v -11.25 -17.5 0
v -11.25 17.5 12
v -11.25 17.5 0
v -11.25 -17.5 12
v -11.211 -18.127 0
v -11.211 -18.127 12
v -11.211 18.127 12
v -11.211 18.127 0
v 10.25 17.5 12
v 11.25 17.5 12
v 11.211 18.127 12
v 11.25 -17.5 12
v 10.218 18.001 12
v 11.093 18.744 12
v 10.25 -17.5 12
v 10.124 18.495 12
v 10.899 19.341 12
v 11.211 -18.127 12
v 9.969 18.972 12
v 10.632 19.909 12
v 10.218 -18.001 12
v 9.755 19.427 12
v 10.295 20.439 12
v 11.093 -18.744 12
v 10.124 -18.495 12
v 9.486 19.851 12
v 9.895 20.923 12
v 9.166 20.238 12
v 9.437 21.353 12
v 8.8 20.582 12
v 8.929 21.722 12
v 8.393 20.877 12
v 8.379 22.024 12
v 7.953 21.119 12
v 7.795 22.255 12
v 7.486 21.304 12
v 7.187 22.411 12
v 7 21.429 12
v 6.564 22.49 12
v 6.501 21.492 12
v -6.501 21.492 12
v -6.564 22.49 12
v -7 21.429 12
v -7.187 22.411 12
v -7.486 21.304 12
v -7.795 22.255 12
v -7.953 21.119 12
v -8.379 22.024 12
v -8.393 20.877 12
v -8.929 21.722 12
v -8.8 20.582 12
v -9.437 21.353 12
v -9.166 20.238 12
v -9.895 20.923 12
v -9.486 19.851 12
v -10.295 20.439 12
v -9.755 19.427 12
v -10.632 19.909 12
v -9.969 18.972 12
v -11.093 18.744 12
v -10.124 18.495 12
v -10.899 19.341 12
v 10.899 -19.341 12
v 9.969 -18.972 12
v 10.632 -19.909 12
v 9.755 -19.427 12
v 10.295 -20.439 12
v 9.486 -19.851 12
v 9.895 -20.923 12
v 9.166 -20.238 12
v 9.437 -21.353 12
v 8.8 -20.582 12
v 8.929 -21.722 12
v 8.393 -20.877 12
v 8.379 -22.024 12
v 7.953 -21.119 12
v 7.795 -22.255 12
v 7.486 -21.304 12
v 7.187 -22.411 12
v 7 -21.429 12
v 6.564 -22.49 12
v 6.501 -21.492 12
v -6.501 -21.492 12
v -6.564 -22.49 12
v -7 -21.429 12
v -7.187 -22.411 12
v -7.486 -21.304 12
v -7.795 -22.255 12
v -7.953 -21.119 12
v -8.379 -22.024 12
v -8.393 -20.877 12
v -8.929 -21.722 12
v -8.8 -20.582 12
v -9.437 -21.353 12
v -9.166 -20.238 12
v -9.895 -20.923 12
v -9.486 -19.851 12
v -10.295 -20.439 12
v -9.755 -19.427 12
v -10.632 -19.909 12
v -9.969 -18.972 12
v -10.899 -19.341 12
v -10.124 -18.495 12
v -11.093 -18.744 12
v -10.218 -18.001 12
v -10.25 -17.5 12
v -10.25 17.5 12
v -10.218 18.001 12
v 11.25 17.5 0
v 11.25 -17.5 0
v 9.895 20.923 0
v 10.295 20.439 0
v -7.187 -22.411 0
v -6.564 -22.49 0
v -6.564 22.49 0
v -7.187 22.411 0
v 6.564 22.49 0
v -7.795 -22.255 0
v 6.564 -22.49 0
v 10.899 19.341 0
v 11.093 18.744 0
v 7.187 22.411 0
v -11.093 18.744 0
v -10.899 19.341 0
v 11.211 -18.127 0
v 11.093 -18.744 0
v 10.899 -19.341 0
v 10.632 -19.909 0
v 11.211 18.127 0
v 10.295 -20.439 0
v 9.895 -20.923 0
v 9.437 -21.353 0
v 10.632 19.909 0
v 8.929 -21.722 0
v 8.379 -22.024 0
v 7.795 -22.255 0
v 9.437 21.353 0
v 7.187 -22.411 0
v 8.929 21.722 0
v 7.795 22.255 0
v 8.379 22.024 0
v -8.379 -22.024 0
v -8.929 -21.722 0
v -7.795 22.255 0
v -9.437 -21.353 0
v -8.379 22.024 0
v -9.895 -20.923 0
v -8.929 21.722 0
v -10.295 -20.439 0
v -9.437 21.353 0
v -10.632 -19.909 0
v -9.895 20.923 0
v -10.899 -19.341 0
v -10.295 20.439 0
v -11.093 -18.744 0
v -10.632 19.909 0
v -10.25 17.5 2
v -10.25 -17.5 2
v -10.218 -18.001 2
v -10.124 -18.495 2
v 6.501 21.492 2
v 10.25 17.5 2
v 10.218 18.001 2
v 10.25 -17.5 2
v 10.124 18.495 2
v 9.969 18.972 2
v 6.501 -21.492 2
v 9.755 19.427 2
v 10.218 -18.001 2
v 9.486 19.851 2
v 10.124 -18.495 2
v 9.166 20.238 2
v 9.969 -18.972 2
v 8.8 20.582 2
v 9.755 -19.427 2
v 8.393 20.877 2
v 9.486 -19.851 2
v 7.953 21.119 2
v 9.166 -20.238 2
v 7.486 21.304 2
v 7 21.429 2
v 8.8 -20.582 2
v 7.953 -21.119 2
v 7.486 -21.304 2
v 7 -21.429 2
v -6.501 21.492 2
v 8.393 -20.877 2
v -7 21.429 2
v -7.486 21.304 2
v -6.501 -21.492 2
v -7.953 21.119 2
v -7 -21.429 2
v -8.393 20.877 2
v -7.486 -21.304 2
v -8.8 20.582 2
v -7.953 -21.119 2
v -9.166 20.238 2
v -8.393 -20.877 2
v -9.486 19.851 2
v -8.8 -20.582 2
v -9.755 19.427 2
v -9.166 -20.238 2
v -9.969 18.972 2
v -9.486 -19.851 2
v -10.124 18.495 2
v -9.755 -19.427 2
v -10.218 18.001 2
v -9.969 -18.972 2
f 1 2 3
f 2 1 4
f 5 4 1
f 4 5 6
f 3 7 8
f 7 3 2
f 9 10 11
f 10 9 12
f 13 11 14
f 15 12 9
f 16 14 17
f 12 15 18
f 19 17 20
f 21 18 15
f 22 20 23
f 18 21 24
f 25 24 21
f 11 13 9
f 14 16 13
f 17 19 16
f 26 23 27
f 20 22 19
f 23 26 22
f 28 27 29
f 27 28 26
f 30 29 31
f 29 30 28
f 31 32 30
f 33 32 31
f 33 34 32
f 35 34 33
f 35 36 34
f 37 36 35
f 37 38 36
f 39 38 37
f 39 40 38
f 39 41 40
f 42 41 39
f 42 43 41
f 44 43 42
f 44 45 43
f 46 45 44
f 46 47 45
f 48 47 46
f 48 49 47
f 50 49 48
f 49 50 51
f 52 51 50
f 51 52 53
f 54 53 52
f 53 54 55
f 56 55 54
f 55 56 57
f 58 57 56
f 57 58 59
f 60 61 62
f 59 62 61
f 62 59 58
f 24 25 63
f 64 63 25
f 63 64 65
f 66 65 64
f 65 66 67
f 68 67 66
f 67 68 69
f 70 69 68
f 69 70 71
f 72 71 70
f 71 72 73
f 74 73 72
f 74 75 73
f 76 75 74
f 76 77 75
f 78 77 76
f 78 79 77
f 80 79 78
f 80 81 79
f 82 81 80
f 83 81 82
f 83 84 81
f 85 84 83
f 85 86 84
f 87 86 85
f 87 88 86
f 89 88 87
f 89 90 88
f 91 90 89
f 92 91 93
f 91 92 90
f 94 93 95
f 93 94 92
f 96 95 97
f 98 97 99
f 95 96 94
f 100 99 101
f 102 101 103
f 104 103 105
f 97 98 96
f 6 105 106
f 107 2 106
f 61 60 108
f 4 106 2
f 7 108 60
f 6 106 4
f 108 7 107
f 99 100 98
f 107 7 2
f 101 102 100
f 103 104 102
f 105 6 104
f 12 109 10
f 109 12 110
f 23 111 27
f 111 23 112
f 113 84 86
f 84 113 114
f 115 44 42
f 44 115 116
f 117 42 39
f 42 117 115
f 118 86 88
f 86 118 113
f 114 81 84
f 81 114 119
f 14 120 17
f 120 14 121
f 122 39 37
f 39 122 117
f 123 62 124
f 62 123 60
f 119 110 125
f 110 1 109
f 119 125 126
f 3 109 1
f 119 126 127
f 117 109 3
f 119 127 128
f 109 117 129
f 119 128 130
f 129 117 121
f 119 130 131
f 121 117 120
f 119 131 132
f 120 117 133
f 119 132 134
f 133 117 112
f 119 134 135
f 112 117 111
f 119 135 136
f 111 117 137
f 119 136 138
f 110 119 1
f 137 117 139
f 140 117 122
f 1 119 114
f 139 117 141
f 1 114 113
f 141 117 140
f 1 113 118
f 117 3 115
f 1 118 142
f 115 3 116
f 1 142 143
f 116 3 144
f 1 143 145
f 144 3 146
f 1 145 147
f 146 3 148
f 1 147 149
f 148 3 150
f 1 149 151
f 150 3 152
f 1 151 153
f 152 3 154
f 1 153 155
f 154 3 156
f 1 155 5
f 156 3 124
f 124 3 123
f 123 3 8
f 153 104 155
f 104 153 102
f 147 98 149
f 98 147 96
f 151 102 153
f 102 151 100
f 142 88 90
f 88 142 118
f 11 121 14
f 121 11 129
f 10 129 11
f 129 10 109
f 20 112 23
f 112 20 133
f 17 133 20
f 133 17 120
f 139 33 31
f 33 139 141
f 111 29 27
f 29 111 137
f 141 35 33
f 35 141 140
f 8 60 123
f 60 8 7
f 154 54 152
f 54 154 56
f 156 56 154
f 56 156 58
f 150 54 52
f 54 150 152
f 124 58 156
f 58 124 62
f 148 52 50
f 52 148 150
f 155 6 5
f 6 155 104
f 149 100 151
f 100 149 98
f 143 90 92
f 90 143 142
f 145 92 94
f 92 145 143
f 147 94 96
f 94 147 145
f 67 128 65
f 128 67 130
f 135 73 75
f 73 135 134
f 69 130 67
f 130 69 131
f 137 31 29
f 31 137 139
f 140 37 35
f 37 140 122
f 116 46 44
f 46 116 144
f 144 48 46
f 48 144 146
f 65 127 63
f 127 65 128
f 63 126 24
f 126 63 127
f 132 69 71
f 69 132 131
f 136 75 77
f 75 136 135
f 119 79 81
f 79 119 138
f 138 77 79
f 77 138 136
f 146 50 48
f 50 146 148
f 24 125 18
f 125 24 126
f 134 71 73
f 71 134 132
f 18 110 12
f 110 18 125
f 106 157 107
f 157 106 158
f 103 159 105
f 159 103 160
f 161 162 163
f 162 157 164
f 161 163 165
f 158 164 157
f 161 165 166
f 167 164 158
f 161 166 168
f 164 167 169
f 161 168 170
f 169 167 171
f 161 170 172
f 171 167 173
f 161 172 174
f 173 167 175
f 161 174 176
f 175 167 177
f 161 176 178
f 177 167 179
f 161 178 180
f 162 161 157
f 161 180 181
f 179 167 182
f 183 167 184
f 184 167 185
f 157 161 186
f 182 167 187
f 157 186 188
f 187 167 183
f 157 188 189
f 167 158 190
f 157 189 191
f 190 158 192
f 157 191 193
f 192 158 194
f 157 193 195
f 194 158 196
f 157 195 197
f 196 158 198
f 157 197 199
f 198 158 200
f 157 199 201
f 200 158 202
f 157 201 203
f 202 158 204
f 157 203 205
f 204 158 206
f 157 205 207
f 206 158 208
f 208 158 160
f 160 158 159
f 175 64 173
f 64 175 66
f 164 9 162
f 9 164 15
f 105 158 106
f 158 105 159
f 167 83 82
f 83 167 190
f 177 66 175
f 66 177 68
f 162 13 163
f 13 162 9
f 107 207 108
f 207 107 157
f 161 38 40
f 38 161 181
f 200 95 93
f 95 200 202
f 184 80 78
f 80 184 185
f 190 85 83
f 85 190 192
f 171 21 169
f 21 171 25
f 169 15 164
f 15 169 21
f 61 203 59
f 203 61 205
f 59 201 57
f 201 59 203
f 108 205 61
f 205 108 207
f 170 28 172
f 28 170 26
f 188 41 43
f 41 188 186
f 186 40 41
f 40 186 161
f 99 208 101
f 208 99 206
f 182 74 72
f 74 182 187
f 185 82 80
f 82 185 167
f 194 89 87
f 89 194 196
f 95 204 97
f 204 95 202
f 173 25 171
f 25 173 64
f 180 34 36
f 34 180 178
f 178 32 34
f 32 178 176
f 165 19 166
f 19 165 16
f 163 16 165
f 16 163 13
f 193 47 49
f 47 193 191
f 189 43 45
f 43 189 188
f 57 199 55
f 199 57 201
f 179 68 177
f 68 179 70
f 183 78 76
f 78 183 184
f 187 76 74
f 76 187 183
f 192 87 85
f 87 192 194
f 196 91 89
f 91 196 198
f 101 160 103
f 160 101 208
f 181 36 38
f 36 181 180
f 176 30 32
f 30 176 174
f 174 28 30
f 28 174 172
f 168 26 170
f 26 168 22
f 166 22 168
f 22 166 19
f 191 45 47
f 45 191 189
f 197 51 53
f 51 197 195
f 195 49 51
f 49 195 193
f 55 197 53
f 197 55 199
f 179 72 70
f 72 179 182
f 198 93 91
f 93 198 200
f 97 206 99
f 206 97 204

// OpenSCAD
$fn = 50;


difference() {
	union() {
		hull() {
			translate(v = [-6.2500000000, 17.5000000000, 0]) {
				cylinder(h = 12, r = 5);
			}
			translate(v = [6.2500000000, 17.5000000000, 0]) {
				cylinder(h = 12, r = 5);
			}
			translate(v = [-6.2500000000, -17.5000000000, 0]) {
				cylinder(h = 12, r = 5);
			}
			translate(v = [6.2500000000, -17.5000000000, 0]) {
				cylinder(h = 12, r = 5);
			}
		}
	}
	union() {
		translate(v = [0, 0, 2]) {
			hull() {
				translate(v = [-6.2500000000, 17.5000000000, 0]) {
					cylinder(h = 10, r = 4);
				}
				translate(v = [6.2500000000, 17.5000000000, 0]) {
					cylinder(h = 10, r = 4);
				}
				translate(v = [-6.2500000000, -17.5000000000, 0]) {
					cylinder(h = 10, r = 4);
				}
				translate(v = [6.2500000000, -17.5000000000, 0]) {
					cylinder(h = 10, r = 4);
				}
			}
		}
	}
}
